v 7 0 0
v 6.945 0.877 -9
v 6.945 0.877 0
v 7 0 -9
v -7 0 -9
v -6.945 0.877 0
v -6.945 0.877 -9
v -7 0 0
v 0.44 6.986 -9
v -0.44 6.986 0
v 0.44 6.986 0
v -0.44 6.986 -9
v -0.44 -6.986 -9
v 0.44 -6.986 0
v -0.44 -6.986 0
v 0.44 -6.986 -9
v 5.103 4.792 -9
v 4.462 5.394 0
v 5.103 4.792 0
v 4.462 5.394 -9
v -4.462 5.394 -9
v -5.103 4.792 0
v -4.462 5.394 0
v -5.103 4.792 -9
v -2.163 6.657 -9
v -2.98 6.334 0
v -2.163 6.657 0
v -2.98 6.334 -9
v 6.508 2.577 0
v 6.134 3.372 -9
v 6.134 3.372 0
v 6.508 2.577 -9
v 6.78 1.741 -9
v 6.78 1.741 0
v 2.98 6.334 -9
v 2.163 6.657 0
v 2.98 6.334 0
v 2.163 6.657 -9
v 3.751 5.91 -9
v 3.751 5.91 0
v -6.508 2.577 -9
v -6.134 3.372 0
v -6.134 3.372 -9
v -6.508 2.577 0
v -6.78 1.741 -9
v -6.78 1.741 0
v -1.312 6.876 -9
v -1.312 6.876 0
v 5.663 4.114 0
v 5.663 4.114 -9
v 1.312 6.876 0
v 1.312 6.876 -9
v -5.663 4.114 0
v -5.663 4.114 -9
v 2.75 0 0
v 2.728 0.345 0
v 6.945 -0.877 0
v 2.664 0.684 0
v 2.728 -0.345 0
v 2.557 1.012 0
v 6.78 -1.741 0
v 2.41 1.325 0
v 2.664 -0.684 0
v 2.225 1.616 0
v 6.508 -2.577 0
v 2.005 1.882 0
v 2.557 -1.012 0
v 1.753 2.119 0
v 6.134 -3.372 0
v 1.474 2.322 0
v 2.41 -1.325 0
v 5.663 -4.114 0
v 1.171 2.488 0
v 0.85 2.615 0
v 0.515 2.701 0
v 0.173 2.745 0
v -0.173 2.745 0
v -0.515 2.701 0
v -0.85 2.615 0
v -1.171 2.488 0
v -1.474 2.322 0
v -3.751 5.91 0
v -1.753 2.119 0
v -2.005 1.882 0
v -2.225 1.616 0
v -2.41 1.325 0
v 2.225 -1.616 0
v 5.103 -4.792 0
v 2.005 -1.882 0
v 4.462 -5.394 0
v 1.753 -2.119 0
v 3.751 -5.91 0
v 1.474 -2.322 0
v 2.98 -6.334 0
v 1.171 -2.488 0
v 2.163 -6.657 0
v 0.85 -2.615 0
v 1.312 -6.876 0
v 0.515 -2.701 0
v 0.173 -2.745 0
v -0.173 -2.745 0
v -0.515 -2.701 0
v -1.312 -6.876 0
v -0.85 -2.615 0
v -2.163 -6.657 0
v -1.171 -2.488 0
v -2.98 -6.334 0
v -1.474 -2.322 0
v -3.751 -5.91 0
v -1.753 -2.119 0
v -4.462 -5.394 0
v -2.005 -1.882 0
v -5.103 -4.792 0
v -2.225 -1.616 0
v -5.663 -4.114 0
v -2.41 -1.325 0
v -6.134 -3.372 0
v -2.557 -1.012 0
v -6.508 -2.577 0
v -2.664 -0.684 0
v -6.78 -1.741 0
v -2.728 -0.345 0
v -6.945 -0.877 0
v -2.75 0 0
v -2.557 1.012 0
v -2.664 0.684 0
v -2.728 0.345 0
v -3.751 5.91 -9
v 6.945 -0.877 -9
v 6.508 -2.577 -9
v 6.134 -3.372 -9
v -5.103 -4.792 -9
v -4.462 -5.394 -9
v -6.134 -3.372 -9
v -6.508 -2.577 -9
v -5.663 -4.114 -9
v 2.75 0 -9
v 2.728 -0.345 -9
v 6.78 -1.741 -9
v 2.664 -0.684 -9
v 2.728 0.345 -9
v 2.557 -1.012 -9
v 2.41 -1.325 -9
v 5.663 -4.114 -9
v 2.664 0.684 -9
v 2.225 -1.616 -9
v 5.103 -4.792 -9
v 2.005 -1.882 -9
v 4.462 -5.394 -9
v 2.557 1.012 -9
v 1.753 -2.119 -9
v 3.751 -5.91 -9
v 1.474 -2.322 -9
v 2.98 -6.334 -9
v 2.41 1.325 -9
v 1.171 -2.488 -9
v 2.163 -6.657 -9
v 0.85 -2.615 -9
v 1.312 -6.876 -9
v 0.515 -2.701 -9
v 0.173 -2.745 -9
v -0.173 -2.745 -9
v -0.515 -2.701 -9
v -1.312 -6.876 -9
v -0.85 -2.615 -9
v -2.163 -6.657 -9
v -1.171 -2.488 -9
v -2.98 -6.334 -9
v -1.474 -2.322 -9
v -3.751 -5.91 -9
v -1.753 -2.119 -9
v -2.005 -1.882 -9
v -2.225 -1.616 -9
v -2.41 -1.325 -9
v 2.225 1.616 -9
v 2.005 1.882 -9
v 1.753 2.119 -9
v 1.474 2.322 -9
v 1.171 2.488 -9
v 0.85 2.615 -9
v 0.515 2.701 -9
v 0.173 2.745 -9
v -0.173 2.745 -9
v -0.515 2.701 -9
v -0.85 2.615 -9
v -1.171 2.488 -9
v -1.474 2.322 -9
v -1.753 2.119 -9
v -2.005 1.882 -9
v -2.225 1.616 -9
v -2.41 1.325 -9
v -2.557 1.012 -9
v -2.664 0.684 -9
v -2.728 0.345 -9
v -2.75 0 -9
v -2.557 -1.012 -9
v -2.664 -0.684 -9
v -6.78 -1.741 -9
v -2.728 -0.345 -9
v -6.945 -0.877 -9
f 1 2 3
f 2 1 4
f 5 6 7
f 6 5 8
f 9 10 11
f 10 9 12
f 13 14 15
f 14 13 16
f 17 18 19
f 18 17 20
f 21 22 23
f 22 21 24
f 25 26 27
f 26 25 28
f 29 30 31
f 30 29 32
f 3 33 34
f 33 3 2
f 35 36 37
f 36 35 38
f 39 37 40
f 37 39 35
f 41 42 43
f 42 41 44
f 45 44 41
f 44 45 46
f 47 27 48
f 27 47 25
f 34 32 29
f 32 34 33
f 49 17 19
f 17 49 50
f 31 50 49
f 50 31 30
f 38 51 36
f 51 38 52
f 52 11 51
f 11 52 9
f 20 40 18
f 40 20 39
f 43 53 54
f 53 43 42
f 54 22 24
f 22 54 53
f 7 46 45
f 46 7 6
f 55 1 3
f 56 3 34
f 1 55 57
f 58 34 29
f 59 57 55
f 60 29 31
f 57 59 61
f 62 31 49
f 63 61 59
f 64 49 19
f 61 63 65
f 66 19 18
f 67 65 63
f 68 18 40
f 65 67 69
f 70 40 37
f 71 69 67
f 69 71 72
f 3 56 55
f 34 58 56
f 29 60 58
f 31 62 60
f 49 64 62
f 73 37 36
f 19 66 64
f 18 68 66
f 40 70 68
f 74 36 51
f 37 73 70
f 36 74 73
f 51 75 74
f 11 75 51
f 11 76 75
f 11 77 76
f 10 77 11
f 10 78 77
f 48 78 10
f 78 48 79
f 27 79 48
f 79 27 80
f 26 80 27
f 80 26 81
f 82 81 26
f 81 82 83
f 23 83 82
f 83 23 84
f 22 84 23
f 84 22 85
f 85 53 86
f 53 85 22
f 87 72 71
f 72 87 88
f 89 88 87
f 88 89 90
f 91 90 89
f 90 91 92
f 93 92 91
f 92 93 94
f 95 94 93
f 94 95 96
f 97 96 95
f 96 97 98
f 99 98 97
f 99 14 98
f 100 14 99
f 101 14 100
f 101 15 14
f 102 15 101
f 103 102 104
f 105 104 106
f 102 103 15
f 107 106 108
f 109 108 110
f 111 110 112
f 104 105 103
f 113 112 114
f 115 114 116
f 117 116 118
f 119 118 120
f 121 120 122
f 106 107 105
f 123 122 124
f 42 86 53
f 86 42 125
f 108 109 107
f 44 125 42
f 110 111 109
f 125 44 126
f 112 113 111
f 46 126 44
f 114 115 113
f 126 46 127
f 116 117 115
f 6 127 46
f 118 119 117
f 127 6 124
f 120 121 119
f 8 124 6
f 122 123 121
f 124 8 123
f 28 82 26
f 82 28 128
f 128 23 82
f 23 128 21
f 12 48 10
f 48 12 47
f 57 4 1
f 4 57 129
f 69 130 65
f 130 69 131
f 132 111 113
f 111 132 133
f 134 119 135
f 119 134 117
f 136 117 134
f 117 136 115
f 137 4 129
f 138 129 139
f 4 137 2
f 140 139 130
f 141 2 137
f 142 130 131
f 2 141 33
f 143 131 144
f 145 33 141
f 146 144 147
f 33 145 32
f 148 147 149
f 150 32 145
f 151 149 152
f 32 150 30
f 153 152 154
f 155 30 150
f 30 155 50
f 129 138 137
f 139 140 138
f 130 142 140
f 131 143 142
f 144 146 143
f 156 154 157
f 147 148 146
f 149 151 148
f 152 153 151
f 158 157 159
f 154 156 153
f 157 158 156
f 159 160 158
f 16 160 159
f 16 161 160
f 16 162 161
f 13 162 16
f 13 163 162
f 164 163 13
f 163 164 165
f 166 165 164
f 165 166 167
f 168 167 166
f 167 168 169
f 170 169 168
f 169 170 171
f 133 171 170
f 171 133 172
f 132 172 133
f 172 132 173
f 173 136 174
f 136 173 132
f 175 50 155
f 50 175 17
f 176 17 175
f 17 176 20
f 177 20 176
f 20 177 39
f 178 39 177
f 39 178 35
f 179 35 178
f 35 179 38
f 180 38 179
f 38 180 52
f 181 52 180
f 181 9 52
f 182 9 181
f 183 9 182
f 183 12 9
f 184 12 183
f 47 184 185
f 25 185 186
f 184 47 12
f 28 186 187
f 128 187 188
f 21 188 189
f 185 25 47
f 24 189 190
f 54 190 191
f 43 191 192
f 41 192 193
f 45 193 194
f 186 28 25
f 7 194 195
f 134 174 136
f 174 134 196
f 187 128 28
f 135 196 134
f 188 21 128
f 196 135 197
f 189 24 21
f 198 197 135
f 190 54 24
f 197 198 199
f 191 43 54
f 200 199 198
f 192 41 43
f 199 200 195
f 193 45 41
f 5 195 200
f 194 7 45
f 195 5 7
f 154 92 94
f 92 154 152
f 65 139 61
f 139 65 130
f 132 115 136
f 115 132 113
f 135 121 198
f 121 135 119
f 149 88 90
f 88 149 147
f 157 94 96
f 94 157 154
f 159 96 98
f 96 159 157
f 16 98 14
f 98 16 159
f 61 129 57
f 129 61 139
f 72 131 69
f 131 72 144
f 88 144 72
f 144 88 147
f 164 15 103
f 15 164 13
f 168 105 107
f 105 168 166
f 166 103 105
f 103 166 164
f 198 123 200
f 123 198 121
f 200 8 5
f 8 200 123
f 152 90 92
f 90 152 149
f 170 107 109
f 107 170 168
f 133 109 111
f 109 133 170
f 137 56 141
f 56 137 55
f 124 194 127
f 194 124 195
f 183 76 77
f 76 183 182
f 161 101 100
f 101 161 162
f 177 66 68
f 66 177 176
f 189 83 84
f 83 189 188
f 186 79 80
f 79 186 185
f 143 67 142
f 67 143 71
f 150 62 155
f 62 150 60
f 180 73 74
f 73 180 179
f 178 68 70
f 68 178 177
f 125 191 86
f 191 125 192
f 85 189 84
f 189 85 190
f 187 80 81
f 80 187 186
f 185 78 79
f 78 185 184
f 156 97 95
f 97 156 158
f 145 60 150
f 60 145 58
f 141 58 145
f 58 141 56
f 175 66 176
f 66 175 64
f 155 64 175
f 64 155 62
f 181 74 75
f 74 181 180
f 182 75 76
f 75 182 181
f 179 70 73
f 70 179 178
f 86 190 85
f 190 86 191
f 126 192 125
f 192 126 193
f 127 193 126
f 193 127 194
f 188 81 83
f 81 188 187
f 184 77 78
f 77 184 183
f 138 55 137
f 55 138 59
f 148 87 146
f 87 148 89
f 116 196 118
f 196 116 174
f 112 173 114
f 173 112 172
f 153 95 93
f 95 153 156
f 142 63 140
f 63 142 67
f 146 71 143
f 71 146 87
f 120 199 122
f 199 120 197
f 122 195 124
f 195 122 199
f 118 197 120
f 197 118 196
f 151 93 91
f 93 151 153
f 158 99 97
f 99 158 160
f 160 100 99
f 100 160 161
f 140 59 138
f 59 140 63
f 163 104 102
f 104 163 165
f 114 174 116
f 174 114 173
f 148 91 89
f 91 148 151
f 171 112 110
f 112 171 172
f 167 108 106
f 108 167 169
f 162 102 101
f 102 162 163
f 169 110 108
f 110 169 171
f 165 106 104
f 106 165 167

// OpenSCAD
$fn = 50;


difference() {
	union() {
		translate(v = [0, 0, -9.0000000000]) {
			cylinder(h = 9, r = 7.0000000000);
		}
		cylinder(h = 0, r = 17.0000000000);
	}
	union() {
		#translate(v = [0, 0, -9]) {
			cylinder(h = 9, r = 2.7500000000);
		}
	}
}
